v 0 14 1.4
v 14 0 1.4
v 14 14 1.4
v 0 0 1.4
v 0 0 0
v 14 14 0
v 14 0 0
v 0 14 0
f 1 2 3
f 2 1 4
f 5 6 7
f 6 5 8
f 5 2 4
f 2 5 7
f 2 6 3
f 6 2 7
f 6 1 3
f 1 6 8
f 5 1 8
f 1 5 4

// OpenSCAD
/* Warning, this is a very basic generator with a lot of approximation 
input data : [LFBGA, AMB, 14x14x1.4mm, 289, , A, C04-21124A]
generated by com.zoubworld.electronics.cad.model3d.Basic
Date : Sun Feb 15 10:50:49 CET 2026
*/

//body
color("black")
translate([0,0,0])
cube([14.0,14.0,1.4], center=false);
